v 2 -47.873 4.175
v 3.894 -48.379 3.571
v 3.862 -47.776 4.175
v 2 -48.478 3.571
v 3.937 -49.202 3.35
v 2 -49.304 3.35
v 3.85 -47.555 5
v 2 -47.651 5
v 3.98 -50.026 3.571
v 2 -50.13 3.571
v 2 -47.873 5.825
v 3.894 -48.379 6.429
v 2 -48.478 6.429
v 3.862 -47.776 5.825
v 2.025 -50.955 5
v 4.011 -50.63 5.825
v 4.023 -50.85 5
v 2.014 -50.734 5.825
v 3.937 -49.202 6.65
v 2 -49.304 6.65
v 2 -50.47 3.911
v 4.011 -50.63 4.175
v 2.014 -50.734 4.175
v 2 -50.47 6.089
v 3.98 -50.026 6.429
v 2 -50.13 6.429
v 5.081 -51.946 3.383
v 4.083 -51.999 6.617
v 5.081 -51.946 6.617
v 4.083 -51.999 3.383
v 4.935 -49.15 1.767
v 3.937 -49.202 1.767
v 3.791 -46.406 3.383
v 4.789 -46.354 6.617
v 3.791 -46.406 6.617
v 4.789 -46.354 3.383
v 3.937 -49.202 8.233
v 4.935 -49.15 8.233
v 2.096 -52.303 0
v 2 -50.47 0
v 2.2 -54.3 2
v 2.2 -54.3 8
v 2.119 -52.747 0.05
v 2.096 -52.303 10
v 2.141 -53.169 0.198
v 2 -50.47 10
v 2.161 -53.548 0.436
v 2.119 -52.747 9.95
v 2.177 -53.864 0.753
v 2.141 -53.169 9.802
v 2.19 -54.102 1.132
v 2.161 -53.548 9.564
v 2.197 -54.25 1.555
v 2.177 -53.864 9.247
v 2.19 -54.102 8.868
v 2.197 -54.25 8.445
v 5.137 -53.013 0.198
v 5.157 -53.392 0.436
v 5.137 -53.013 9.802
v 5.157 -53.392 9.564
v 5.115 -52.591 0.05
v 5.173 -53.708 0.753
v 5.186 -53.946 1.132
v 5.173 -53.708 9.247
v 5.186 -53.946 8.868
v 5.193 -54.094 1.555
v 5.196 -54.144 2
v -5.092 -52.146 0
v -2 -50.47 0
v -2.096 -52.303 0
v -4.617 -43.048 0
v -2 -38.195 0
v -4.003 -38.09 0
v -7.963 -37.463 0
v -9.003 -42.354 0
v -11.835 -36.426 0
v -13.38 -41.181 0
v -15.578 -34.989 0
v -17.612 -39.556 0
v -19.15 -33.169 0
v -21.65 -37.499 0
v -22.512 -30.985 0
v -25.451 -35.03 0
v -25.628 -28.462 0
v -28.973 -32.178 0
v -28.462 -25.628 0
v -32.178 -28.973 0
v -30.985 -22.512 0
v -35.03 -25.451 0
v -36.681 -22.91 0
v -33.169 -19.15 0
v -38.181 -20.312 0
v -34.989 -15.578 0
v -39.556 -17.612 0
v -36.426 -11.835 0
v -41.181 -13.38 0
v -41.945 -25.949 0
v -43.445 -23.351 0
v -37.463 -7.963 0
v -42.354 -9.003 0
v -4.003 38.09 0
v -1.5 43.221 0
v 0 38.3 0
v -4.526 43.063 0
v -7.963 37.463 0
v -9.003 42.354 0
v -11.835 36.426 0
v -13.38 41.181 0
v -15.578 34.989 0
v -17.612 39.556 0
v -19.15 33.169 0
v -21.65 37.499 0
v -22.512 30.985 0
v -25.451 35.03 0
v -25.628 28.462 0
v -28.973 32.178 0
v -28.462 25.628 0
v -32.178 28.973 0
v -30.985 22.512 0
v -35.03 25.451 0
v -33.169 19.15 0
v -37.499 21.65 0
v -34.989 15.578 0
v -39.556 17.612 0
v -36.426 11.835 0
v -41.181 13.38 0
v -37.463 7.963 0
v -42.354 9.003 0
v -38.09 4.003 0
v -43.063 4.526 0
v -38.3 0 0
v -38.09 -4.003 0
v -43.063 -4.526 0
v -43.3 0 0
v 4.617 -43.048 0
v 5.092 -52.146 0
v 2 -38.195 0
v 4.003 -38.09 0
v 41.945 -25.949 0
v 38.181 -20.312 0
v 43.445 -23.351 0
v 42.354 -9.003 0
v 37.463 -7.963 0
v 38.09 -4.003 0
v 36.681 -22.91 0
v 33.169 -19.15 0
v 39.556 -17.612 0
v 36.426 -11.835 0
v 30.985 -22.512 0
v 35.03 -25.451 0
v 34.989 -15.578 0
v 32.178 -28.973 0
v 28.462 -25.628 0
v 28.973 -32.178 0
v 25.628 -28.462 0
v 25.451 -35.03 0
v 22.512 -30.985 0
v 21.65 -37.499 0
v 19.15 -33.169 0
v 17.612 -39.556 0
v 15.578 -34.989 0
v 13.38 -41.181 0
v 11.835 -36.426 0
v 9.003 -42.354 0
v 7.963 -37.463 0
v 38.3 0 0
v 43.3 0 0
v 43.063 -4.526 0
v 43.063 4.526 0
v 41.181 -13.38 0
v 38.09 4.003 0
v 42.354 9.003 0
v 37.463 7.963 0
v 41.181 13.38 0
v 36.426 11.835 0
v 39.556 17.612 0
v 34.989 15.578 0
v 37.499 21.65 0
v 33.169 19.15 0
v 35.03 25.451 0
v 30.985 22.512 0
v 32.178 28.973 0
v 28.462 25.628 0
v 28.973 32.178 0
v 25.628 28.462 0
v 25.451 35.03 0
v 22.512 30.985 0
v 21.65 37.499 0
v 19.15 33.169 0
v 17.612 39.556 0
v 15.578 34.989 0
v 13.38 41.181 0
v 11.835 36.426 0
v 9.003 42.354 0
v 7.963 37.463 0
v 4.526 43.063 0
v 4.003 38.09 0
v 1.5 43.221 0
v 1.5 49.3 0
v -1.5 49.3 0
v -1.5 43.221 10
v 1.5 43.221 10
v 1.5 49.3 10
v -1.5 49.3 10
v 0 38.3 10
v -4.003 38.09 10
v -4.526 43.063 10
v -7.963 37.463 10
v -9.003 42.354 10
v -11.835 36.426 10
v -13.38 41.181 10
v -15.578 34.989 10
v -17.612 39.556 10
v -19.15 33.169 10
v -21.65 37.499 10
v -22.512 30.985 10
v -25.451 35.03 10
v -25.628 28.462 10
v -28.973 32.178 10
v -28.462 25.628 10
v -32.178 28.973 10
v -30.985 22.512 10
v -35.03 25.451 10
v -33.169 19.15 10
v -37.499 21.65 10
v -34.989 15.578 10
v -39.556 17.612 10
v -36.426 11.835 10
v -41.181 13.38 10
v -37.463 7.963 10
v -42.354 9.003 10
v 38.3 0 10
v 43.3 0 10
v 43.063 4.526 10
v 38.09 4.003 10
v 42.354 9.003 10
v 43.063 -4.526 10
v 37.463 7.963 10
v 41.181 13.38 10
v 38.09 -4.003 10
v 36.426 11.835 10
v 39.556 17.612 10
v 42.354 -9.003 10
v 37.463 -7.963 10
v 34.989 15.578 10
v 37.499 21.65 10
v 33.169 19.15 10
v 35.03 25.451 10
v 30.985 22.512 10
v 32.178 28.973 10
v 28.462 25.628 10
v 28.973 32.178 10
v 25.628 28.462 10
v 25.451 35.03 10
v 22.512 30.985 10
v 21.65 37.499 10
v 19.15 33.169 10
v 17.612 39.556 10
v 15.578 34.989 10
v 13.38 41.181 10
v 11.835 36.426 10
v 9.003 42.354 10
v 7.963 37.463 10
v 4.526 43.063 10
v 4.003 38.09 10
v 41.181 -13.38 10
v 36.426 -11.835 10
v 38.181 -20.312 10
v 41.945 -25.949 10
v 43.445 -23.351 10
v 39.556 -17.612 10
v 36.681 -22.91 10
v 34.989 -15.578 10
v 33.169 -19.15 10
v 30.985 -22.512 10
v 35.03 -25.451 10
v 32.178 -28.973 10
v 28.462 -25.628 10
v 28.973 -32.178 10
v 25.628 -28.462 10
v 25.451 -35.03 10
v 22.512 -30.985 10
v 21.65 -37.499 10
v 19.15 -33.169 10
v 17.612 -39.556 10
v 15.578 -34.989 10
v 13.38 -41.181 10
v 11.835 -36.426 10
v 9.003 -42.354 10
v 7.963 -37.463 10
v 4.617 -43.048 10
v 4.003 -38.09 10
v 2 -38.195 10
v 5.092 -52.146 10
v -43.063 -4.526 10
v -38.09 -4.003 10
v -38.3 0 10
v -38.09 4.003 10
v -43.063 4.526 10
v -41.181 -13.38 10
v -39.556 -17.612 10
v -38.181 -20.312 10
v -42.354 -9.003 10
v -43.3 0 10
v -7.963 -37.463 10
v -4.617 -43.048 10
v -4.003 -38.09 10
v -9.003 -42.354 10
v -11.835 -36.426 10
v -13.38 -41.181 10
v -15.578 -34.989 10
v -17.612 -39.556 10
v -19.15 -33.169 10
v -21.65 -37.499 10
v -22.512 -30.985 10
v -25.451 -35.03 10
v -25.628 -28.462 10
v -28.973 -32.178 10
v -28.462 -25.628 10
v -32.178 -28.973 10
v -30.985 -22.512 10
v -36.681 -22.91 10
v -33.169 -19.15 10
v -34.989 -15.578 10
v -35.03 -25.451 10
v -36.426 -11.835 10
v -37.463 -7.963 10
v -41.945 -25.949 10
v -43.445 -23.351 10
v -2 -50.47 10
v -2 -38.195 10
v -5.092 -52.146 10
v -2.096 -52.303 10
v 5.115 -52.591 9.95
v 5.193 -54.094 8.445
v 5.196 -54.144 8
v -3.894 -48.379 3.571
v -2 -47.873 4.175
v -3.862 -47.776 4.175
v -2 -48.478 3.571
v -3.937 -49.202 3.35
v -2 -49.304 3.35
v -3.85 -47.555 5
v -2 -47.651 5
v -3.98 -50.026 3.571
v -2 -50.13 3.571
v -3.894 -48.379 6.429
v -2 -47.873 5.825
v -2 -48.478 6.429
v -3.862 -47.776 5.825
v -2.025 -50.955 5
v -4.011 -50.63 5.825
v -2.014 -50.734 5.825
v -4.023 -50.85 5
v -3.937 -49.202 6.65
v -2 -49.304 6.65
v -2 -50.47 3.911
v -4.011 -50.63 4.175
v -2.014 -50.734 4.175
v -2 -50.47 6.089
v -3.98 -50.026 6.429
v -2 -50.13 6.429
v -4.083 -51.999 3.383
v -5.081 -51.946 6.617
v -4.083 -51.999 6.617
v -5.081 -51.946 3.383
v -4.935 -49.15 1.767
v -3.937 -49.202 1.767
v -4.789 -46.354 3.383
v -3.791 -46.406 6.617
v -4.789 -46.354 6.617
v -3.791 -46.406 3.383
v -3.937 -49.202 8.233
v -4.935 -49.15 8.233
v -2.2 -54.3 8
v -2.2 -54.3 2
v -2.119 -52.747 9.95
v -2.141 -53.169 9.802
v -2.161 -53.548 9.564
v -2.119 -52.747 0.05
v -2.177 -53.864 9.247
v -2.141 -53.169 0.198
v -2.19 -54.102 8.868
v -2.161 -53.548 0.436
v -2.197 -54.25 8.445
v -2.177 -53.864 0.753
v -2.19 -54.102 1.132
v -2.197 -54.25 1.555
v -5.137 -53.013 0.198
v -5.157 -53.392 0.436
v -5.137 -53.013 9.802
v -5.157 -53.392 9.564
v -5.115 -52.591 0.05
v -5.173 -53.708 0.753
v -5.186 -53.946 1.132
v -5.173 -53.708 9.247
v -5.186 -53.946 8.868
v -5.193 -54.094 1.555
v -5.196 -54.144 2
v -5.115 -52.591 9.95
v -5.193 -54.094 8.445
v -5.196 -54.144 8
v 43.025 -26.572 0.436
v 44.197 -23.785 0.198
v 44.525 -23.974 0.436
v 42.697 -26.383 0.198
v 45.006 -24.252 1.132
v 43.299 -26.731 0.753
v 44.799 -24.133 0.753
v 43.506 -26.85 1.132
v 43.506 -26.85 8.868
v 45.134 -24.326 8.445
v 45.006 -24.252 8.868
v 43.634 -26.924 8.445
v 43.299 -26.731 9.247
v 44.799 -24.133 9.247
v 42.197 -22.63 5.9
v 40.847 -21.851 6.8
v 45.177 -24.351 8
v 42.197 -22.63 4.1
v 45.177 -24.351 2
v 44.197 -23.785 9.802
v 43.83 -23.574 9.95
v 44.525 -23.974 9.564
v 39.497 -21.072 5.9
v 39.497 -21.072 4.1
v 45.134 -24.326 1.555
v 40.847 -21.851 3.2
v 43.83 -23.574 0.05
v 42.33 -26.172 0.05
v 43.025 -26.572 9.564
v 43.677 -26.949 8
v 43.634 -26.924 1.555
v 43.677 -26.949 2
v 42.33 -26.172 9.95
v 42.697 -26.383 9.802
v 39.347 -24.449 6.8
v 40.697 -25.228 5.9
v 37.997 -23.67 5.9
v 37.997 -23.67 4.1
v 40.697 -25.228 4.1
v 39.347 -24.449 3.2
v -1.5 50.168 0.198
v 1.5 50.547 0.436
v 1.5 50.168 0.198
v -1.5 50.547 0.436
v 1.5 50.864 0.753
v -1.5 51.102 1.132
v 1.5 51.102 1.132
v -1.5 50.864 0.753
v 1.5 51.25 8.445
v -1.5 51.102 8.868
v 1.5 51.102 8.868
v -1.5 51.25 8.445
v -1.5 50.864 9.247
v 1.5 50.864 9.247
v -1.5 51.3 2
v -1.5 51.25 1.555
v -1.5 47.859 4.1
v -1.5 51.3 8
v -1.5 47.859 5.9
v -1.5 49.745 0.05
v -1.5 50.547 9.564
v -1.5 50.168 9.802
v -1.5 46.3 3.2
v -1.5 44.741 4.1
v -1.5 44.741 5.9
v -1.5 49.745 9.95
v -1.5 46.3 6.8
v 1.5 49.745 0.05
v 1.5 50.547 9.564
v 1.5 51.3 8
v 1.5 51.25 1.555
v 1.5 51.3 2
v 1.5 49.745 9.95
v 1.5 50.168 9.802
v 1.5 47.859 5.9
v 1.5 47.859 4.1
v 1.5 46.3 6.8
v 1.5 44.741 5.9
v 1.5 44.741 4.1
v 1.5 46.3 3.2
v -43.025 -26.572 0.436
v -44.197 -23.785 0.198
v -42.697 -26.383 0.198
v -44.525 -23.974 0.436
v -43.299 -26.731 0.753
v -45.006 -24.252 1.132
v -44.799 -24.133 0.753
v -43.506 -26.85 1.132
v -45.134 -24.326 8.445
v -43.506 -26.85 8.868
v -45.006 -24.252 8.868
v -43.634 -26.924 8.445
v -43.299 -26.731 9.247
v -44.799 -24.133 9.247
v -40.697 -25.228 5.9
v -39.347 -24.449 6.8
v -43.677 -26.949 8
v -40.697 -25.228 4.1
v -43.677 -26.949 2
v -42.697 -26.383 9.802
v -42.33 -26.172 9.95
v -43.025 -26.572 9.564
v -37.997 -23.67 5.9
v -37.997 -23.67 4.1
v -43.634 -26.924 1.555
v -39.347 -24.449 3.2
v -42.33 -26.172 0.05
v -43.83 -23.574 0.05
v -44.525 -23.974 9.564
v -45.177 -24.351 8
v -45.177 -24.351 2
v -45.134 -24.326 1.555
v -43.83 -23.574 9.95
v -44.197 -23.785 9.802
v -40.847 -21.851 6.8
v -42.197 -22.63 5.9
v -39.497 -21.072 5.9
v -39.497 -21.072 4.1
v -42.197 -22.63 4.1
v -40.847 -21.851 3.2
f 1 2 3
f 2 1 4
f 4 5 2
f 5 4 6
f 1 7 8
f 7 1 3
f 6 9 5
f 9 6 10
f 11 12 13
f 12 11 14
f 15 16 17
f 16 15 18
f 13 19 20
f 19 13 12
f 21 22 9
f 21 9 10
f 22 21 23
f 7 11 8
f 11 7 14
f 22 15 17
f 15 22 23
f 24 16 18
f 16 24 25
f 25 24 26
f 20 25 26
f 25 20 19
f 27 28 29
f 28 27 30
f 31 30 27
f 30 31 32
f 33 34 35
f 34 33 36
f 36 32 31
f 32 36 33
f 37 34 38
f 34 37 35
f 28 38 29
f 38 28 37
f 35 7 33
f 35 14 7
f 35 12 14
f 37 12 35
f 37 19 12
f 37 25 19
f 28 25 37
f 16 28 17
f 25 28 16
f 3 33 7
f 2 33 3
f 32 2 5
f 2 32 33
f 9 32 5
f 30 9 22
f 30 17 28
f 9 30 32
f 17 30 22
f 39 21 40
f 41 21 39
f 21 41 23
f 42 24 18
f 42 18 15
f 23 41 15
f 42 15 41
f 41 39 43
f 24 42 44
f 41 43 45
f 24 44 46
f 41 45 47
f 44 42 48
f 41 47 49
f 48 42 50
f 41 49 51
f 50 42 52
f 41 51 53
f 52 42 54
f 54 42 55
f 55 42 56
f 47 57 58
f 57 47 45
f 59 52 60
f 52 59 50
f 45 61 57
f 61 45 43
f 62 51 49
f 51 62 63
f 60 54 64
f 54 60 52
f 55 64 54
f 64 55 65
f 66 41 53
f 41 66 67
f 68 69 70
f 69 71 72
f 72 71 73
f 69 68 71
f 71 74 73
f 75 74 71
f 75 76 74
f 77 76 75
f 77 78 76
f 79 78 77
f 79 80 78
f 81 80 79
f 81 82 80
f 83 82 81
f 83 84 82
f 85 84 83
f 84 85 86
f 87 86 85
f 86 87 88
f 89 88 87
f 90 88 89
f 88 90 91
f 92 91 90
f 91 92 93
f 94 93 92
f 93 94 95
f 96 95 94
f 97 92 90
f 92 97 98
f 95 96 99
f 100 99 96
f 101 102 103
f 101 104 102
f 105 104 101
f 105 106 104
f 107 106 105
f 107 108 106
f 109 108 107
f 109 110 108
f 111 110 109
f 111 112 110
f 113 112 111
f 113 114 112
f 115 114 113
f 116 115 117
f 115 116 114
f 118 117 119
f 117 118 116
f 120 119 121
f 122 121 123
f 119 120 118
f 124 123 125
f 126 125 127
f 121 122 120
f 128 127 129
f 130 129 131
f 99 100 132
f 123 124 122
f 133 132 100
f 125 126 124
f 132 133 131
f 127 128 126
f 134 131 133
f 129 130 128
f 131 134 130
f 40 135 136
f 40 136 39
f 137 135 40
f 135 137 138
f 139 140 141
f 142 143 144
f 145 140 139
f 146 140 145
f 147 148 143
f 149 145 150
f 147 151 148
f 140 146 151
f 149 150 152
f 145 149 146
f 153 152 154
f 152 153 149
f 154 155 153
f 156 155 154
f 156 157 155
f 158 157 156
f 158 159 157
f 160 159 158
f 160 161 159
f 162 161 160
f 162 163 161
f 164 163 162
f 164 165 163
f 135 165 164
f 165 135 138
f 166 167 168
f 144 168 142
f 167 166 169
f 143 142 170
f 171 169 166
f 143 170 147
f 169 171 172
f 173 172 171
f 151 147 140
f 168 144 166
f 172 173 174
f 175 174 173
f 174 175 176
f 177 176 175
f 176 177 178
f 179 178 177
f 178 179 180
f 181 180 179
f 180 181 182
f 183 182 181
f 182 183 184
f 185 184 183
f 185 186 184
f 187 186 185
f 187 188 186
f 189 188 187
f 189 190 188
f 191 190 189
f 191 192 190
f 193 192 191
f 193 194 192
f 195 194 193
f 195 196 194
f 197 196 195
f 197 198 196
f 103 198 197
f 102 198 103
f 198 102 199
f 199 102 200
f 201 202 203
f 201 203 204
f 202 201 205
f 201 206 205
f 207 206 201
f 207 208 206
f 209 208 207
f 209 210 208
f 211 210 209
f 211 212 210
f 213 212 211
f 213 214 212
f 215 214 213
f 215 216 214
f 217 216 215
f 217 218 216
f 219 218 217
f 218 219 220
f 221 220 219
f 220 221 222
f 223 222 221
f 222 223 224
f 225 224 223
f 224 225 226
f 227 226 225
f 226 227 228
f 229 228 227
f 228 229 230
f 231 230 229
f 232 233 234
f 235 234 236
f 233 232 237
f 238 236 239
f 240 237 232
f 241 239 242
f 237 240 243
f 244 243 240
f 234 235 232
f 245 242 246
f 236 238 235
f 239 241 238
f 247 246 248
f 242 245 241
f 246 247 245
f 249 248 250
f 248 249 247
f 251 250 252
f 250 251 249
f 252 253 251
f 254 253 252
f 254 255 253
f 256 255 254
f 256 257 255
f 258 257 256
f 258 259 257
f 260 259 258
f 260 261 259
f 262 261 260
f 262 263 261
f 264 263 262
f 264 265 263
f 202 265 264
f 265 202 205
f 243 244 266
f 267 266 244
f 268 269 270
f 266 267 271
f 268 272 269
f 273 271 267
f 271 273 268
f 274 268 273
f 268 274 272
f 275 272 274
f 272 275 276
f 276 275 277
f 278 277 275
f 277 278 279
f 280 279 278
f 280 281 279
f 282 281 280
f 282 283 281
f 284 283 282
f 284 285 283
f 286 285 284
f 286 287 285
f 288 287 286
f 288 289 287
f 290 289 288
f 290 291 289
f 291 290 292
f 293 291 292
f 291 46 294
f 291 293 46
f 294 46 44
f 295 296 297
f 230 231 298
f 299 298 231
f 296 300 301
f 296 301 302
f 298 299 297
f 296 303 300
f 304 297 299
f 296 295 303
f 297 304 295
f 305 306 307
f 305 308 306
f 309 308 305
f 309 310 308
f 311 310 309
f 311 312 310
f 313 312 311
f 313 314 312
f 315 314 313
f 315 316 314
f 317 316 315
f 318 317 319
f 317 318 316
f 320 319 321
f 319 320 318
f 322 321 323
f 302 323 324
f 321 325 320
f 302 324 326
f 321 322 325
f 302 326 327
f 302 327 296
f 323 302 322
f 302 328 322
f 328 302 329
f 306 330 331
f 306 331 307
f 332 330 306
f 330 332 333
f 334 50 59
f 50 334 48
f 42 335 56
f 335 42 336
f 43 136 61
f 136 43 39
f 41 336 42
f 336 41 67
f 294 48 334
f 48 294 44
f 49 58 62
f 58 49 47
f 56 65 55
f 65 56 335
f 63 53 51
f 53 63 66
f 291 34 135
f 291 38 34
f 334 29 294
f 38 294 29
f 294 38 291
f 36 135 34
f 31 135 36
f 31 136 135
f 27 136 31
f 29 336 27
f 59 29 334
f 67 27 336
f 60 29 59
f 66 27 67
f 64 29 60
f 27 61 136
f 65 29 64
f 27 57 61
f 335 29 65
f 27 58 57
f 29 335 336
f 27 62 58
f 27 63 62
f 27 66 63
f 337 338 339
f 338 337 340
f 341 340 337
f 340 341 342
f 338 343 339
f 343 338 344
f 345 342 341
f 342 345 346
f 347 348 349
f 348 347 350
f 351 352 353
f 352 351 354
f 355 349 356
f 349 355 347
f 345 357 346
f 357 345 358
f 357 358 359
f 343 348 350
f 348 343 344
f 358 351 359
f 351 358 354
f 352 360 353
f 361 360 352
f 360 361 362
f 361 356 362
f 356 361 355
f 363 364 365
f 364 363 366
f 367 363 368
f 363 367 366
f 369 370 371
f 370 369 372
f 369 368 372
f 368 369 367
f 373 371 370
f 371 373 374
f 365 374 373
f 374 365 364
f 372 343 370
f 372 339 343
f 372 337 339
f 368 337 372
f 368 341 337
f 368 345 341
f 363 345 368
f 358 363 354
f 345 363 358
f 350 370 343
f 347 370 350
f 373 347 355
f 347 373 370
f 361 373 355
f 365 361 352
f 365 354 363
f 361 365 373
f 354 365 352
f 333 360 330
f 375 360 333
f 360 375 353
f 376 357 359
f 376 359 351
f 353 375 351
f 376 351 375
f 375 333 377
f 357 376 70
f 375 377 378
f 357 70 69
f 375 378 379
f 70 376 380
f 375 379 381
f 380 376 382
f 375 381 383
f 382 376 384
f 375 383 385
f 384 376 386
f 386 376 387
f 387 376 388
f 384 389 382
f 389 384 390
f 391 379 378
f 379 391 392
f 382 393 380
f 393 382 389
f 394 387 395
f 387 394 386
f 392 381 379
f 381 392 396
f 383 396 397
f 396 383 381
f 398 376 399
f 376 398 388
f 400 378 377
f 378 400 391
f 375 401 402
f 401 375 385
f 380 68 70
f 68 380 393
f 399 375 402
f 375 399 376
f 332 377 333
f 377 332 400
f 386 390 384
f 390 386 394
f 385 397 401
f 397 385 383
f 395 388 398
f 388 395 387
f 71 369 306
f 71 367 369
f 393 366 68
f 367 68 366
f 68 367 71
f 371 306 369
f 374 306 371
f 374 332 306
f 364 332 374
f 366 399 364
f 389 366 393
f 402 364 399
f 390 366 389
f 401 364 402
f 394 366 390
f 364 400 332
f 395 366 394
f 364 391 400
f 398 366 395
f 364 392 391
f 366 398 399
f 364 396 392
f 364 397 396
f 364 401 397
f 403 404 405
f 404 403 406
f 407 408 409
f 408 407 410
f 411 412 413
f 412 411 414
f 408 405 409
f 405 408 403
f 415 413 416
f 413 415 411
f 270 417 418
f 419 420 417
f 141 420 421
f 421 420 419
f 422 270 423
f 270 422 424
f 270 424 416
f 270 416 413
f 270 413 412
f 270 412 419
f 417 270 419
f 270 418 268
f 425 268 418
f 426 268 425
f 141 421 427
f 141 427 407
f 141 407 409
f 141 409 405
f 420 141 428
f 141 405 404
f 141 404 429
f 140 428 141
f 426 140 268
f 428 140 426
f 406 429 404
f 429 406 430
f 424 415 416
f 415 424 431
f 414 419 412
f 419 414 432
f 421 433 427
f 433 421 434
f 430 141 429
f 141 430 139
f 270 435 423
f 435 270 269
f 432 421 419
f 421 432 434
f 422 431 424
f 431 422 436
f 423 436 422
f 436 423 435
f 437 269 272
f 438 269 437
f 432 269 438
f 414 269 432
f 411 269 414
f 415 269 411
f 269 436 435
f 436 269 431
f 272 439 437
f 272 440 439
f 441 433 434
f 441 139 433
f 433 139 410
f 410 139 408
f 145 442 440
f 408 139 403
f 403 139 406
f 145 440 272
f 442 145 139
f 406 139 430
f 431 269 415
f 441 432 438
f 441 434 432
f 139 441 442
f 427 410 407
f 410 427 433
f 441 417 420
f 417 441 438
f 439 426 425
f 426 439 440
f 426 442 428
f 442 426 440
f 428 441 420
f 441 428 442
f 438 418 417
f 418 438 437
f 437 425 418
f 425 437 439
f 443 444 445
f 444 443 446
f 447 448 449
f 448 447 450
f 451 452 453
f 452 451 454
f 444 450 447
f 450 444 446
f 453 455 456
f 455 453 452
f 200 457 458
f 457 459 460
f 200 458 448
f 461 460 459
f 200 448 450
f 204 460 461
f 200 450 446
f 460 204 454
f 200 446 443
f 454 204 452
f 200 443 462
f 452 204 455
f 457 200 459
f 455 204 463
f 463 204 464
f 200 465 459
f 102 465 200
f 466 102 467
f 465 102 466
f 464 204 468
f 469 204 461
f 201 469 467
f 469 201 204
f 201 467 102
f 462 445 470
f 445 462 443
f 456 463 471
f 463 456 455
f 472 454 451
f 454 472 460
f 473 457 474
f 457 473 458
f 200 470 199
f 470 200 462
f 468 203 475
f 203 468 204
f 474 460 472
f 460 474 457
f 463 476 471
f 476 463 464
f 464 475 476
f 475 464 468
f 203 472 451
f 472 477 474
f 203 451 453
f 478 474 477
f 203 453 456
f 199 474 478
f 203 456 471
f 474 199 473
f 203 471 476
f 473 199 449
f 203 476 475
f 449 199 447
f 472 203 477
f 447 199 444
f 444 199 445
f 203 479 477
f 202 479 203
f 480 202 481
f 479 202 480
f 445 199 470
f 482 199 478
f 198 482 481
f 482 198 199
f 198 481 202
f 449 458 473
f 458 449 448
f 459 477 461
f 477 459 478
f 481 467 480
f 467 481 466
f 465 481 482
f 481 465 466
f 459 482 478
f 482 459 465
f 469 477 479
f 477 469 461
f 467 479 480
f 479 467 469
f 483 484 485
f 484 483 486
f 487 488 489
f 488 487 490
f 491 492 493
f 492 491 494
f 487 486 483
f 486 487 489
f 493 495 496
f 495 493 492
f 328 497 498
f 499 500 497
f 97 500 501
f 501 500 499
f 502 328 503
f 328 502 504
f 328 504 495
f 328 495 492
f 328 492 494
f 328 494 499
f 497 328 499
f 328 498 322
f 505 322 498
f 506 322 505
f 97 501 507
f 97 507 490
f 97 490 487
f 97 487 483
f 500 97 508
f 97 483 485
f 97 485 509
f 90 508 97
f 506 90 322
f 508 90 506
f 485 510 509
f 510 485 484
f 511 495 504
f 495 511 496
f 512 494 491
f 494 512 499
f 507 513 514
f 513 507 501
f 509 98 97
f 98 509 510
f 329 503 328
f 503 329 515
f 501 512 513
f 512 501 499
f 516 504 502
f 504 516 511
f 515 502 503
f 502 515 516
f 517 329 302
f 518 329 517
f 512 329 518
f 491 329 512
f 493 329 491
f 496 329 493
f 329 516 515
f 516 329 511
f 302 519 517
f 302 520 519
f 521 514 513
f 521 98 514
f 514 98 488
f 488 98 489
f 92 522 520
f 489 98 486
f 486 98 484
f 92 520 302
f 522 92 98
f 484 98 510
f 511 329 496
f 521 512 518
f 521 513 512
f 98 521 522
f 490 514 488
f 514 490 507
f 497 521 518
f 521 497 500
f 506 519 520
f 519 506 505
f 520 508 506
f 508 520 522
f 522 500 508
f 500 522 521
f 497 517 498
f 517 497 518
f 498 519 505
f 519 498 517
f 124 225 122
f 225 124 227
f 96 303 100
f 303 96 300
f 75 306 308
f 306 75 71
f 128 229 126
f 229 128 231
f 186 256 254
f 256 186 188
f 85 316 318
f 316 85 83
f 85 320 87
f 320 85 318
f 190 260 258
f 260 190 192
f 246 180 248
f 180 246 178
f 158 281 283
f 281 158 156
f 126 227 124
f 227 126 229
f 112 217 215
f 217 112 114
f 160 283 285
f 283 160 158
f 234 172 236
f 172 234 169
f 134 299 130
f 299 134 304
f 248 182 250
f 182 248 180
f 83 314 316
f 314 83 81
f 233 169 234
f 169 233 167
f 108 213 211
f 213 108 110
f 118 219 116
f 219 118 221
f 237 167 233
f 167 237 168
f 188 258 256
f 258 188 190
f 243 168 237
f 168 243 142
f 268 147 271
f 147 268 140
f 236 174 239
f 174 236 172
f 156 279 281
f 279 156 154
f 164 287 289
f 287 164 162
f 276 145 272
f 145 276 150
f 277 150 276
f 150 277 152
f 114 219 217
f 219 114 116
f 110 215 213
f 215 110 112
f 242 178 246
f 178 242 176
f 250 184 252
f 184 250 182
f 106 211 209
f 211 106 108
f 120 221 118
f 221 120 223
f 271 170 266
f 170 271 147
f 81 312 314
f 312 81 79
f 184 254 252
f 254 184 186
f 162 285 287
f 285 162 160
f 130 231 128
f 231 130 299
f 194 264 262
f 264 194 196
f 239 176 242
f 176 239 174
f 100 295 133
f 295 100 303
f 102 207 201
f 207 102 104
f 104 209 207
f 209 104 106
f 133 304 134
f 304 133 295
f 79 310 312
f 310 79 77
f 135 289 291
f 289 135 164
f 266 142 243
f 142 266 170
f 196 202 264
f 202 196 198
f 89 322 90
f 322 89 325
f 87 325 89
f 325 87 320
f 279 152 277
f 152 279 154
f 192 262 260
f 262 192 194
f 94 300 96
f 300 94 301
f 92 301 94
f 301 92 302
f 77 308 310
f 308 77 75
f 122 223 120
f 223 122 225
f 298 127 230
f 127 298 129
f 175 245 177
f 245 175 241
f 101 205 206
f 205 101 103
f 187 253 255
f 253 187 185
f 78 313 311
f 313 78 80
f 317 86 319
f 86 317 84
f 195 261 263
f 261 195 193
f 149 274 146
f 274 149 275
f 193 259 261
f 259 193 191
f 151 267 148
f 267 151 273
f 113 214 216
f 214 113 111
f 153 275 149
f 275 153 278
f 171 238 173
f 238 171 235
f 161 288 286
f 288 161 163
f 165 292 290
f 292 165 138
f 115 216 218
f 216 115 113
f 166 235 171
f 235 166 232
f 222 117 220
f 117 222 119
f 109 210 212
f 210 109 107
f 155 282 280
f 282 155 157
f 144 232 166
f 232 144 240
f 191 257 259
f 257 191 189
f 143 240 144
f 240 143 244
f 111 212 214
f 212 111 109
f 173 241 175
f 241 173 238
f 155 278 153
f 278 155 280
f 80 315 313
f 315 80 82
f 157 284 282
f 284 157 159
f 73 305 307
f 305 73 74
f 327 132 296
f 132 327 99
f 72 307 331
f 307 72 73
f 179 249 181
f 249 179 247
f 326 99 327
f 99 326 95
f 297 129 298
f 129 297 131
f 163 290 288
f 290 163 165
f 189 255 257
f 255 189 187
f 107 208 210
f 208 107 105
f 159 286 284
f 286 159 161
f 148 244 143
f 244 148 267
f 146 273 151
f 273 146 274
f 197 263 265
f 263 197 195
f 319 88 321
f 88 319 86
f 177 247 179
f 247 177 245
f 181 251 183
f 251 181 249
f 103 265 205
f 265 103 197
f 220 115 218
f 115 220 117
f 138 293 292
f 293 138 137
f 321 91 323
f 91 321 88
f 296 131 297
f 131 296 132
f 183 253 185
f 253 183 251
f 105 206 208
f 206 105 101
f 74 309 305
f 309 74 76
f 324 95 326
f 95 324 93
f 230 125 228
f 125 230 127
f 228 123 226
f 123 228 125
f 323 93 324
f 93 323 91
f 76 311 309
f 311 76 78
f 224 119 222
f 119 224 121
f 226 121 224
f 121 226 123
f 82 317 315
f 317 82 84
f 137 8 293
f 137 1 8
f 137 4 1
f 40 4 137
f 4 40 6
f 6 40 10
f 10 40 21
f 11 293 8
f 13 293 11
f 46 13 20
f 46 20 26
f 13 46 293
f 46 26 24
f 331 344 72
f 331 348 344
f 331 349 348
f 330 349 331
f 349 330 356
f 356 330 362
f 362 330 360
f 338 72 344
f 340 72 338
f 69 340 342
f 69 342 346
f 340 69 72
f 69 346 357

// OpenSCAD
// file: lib/sweep.scad
// sweep.scad
//
// This code is copied from
// https://github.com/openscad/list-comprehension-demos
// and
// https://github.com/openscad/scad-utils
// to make hangprinter repo self-contained
// It was included in order to make the worm drive parametric
// In future OpenSCAD (or other script CAD programs)
// worm drives should be will be more easily constructed without
// this user space defined sweep operation.
// See OpenSCAD discussion at:
// https://github.com/openscad/openscad/issues/114

// Look into files
// lists.scad
// X transformations.scad
// linalg.scad
// se3.scad
// so3.scad


// Include modules and fcts:

/// linalg.scad
function vec3(p) = len(p) < 3 ? concat(p,0) : p;
function vec4(p) = let (v3=vec3(p)) len(v3) < 4 ? concat(v3,1) : v3;
function take3(v) = [v[0],v[1],v[2]];
function tail3(v) = [v[3],v[4],v[5]];
function construct_Rt(R,t) = [concat(R[0],t[0]),concat(R[1],t[1]),concat(R[2],t[2]),[0,0,0,1]];

/// so3.scad

function se3_exp_2(t,w) = se3_exp_2_0(t,w,w*w);
function se3_exp_2_0(t,w,theta_sq) =
se3_exp_23(
	so3_exp_2(theta_sq),
	C = (1.0 - theta_sq/20) / 6,
	t=t,w=w);

// Taylor series expansions close to 0
function so3_exp_1(theta_sq) = [
	1 - 1/6*theta_sq,
	0.5
];

function rodrigues_so3_exp(w, A, B) = [
  [1.0 - B*(w[1]*w[1] + w[2]*w[2]), B*(w[0]*w[1]) - A*w[2],          B*(w[0]*w[2]) + A*w[1]],
  [B*(w[0]*w[1]) + A*w[2],          1.0 - B*(w[0]*w[0] + w[2]*w[2]), B*(w[1]*w[2]) - A*w[0]],
  [B*(w[0]*w[2]) - A*w[1],          B*(w[1]*w[2]) + A*w[0],          1.0 - B*(w[0]*w[0] + w[1]*w[1])]
];

function so3_exp_3_0(theta_deg, inv_theta) = [
	sin(theta_deg) * inv_theta,
	(1 - cos(theta_deg)) * (inv_theta * inv_theta)
];

/// se3.scad
function combine_se3_exp(w, ABt) = construct_Rt(rodrigues_so3_exp(w, ABt[0], ABt[1]), ABt[2]);
function se3_exp_1(t,w) = concat(
	so3_exp_1(w*w),
	[t + 0.5 * cross(w,t)]
);

function se3_exp_3(t,w) = se3_exp_3_0(t,w,sqrt(w*w)*180/PI,1/sqrt(w*w));

function se3_exp_23(AB,C,t,w) =
[AB[0], AB[1], t + AB[1] * cross(w,t) + C * cross(w,cross(w,t)) ];

function se3_exp_3_0(t,w,theta_deg,inv_theta) =
se3_exp_23(
	so3_exp_3_0(theta_deg = theta_deg, inv_theta = inv_theta),
	C = (1 - sin(theta_deg) * inv_theta) * (inv_theta * inv_theta),
t=t,w=w);

function se3_exp(mu) = se3_exp_0(t=take3(mu),w=tail3(mu)/180*PI);

function se3_exp_0(t,w) =
combine_se3_exp(w,
// Evaluate by Taylor expansion when near 0
	w*w < 1e-8
	? se3_exp_1(t,w)
	: w*w < 1e-6
	  ? se3_exp_2(t,w)
	  : se3_exp_3(t,w)
);


/// lists.scad
/*!
  Flattens a list one level:

  flatten([[0,1],[2,3]]) => [0,1,2,3]
*/
function flatten(list) = [ for (i = list, v = i) v ];
/*!
  Extracts a subarray from index begin (inclusive) to end (exclusive)

  subarray([1,2,3,4], 1, 2) => [2,3]
*/
function subarray(list,begin=0,end=-1) = [
    let(end = end < 0 ? len(list) : end)
      for (i = [begin : 1 : end-1])
        list[i]
];

/// transformations.scad
//********* Create modifying matrices ***************//
/*!
  Creates a rotation matrix

  xyz = euler angles = rz * ry * rx
  axis = rotation_axis * rotation_angle
*/
function rotation(xyz=undef, axis=undef) =
	xyz != undef && axis != undef ? undef :
	xyz == undef  ? se3_exp([0,0,0,axis[0],axis[1],axis[2]]) :
	len(xyz) == undef ? rotation(axis=[0,0,xyz]) :
	(len(xyz) >= 3 ? rotation(axis=[0,0,xyz[2]]) : identity4()) *
	(len(xyz) >= 2 ? rotation(axis=[0,xyz[1],0]) : identity4()) *
(len(xyz) >= 1 ? rotation(axis=[xyz[0],0,0]) : identity4());

/*!
  Creates a scaling matrix
*/
function scaling(v) = [
	[v[0],0,0,0],
	[0,v[1],0,0],
	[0,0,v[2],0],
	[0,0,0,1],
];

/*!
  Creates a translation matrix
*/
function translation(v) = [
	[1,0,0,v[0]],
	[0,1,0,v[1]],
	[0,0,1,v[2]],
	[0,0,0,1],
];


function project(x) = subarray(x,end=len(x)-1) / x[len(x)-1];

function transform(m, list) = [for (p=list) project(m * vec4(p))];

function to_3d(list) = [ for(v = list) vec3(v) ];

module sweep(shape, path_transforms, closed=false) {

    pathlen = len(path_transforms);
    segments = pathlen + (closed ? 0 : -1);
    shape3d = to_3d(shape);

    function sweep_points() =
      flatten([for (i=[0:pathlen-1])
        transform(path_transforms[i], shape3d)]);

    function loop_faces() = [let (facets=len(shape3d))
        for(s=[0:segments-1], i=[0:facets-1])
          [(s%pathlen) * facets + i,
           (s%pathlen) * facets + (i + 1) % facets,
           ((s + 1) % pathlen) * facets + (i + 1) % facets,
           ((s + 1) % pathlen) * facets + i]];

    bottom_cap = closed ? [] : [[for (i=[len(shape3d)-1:-1:0]) i]];
    top_cap = closed ? [] : [
      [for (i=[0:len(shape3d)-1])
        i+len(shape3d)*(pathlen-1)]];
    polyhedron(points = sweep_points(),
               faces  = concat(loop_faces(),
                               bottom_cap,
                               top_cap),
               convexity=5);
}
// file: ram_1000_3dpotter.scad
include <lib/parameters.scad>
use <lib/util.scad>

ram_1000_3dpotter();
module ram_1000_3dpotter(){
  lift_tube = 60;
  tube_height = 325;
  tube_inner_d = Ram_1000_3dpotter_tube_inner_d;
  tube_outer_d = Ram_1000_3dpotter_tube_outer_d;
  translate([0,0,lift_tube])
    color([0.9,0.9,0.9], 0.4)
      difference(){
        cylinder(d = tube_outer_d, h=tube_height, $fn=10*4);
        translate([0,0,-1])
          cylinder(d = tube_inner_d, h= tube_height+2, $fn=10*4);
      }

  color([0.15,0.15,0.15])
    difference(){
      translate([0,0,lift_tube-36])
        cylinder(d=70, h=36);
      end_r = 35.7/2;
      circle_r = 47;
      translate([0,0,lift_tube-36])
        rotate_extrude()
          translate([circle_r+end_r,0])
            circle(r=circle_r);
    }

  color([0.93,0.1,0.1])
    cylinder(d1 = 6, d2 = 19, h = 24);

  shim_height = 17;
  color([0.15,0.15,0.15])
    translate([0,0,tube_height + lift_tube])
      cylinder(d = tube_outer_d + 3, h = shim_height);

  color([0.5,0.5,0.5])
    translate([-80/2, -80/2, lift_tube + tube_height + shim_height])
      cube([80, 97, Nema23_cube_width]);
  translate([-Nema23_cube_height-80/2, 97-80/2-Nema23_cube_width/2, lift_tube + tube_height + shim_height + Nema23_cube_width/2])
    rotate([0,90,0])
      Nema23();

  topshim_height = 10;
  color([0.6,0.6,0.6])
    translate([0,0,lift_tube + tube_height + shim_height + Nema23_cube_width])
      cylinder(d=62, h=topshim_height);
  w = Ram_1000_3dpotter_top_square_width;
  color([0.6,0.6,0.6])
    rotate([0,0,45])
      translate([-w/2, -w/2, lift_tube + tube_height + shim_height + Nema23_cube_width])
        cube([w, w, 300]);

}
// file: lib/parameters.scad
// Parameters shared between modules
Base_th = 2;
Beam_width = 15;
Wiggle = 0.25;
Fat_beam_width = Beam_width + Wiggle;
Beam_length = 400;
Wall_th = 2.5;
Min_beam_width = 12.5;
Max_beam_width = 17.5;
Zip_th = 2;
Zip_h = Zip_th + Max_beam_width - Min_beam_width;
Zip_w = 5.0;
Nema17_cube_width          = 42.43;
Nema17_screw_hole_width    = 43.74; // Opposite corner screws
Nema17_ring_diameter       = 22;
Nema17_cube_height         = 39.36;
Nema17_shaft_height        = 63.65;
Nema17_ring_height         = 2;
Nema17_shaft_radius        = 5/2;

Nema23_cube_width          = 56.4;
Nema23_cube_height         = 54.5;
Nema23_shaft_height        = 100;
Nema23_screw_hole_width    = 66.31; // Opposite corner screws
b608_outer_dia = 22.2;
b608_width = 7.05;
b608_bore_r = 4;
b608_vgroove_big_r = b608_outer_dia/2 + 2.5;
b608_vgroove_small_r = b608_outer_dia/2 + 0.5;
b608_ugroove_big_r = b608_vgroove_big_r;
b608_ugroove_small_r = b608_vgroove_small_r;
Gap_between_sandwich_and_plate = 1.5 + Base_th; // 1.5 mm for wiggle
Motor_bracket_flerp_r = 6;
Motor_bracket_flerp = 14;
Motor_bracket_cw = Nema17_cube_width + 6;
Motor_bracket_att_ang = 50;
Mounting_screw_d = 3.5;
Mounting_screw_head_d = 14;
Spool_outer_wall_th = 4;

// Corner clamp parameters
Cc_l1 = (Fat_beam_width+2*Wall_th)*2*sqrt(3);
Cc_rad_b = 4;
Cc_action_point_from_mid = Cc_l1/sqrt(3)-2*Cc_rad_b-7;
Cc_plastic_length = sqrt(Cc_action_point_from_mid*Cc_action_point_from_mid
                       - (Cc_action_point_from_mid/2)*(Cc_action_point_from_mid/2));
Eyelet_extra_dist = 0.75;
Eyelet_diameter = 4.30;
Move_d_bearings_inwards = -2;

// The distance between the two action points on the mover
Sidelength = Beam_length + 2*Cc_plastic_length;

/////// Gear parameters ////////////
Circular_pitch = 262;
Motor_teeth = 10;
Gear_height = 21.4-3;
Motor_pitch                      = (Motor_teeth*Circular_pitch/360);
Motor_pitch_diametrial           = Motor_teeth/(2*Motor_pitch);
Motor_outer_radius               = Motor_pitch + 1/Motor_pitch_diametrial;
Spool_teeth = 100;
Spool_r = 75;
Spool_height = 8;
Spool_pitch                      = (Spool_teeth*Circular_pitch/360);
Spool_pitch_diametrial           = Spool_teeth/(2*Spool_pitch);
Spool_outer_radius               = Spool_pitch + 1/Spool_pitch_diametrial;
Sep_disc_radius = (161.83+1)/2; // Made to match 255 teeth gt2 pulley + 1
Motor_bracket_depth = Gear_height+1+7+Nema17_ring_height+1+Gap_between_sandwich_and_plate;
Spool_core_flerp0 = 16+3;

/////// Lineroller parameters ////////////
b623_width  = 4;
b623_bore_r = 3/2;
b623_big_ugroove_big_r = (12+3)/2;
b623_big_ugroove_small_r = (10+3)/2;
b623_outer_dia = 10;
b623_ugroove_room_to_grow_r = 1.1;
b608_ugroove_room_to_grow_r = 1.1;
b623_flange_dia = 11.5;
b623_flange_room_to_grow_r = 0.5;

Depth_of_roller_base = 18;
Roller_flerp = 6;
Roller_l = 42;
Roller_fl = (Roller_l - Depth_of_roller_base)/2;

Line_roller_wall_th = 5;

Line_roller_ABC_winch_h =  Gap_between_sandwich_and_plate
                           + Sep_disc_radius
                           - Spool_r
                           + Depth_of_roller_base/2
                           + b608_vgroove_small_r;

Ptfe_r = 2.1;
Roller_base_r = 8;
Screw_h = 2;
Screw_head_h = 2;
M3_screw_head_d = 5.8;
Spool_center_bearing_wall_th = 5;
Corner_clamp_bearings_center_to_center = max(15, (b623_big_ugroove_big_r + b623_ugroove_room_to_grow_r)*2 + 5);

//// Lineroller anchor parameters /////

Front_bearing_x = -5 - 5;
Move_tower = -12.2;
Lower_bearing_z = 13;
Higher_bearing_z = Lower_bearing_z + Corner_clamp_bearings_center_to_center;

//// Cable Clamp parameters /////
Bit_width = 12;
Cable_r=2.5;

// Belt drive parameters
GT2_belt_width = 6.5;
GT2_gear_height = GT2_belt_width + 2;
GT2_motor_gear_height = 16;
GT2_motor_gear_outer_dia = 16;
GT2_spool_gear_outer_dia = 161.82; // Echoed from GT2_spool_gear.scad
GT2_spool_gear_teeth = 255;
GT2_motor_gear_teeth = 20;
Torx_depth = GT2_gear_height/2;
Belt_roller_h = 56;
Belt_thickness = 1.4;

Belt_roller_space_between_walls = 2*b623_width + 0.8;
Belt_roller_wall_th = (Depth_of_roller_base - Belt_roller_space_between_walls)/2+2;
Belt_roller_top_adj_screw_x = Depth_of_roller_base/2-3.7;
Belt_roller_top_adj_screw_y = Belt_roller_space_between_walls/2+2;
Belt_roller_containing_cube_ywidth = Belt_roller_space_between_walls+8.5;
Belt_roller_containing_cube_xwidth = 14;
Belt_roller_insert_h = 18;

Sandwich_ABC_width = 2*(1+Spool_height) + GT2_gear_height;
Sandwich_D_width = 4*(1+Spool_height) + GT2_gear_height;
Spool_core_halve_width = 14.3;
Spool_core_impression_in_spool_cover = 0;
Spool_cover_bottom_th = 1.5;
Spool_cover_shoulder = 2;
Spool_core_cover_adj = Spool_cover_shoulder+Spool_cover_bottom_th-Spool_core_impression_in_spool_cover;
Spool_core_tot_length = 136.458;
Spool_cover_outer_r = Sep_disc_radius + 2;
Gap_between_sep_disc_and_spool_cover = 0.55;

Smooth_rod_length_ABC = Sandwich_ABC_width + 2*(Spool_core_halve_width-Spool_core_impression_in_spool_cover + Spool_cover_bottom_th + Spool_cover_shoulder);
Smooth_rod_length_D = Sandwich_D_width + 2*(Spool_core_halve_width-Spool_core_impression_in_spool_cover + Spool_cover_bottom_th + Spool_cover_shoulder);
echo("Smooth_rod_length_ABC", Smooth_rod_length_ABC);
echo("Smooth_rod_length_D", Smooth_rod_length_D);

Spool_cover_tot_height = Spool_cover_bottom_th+Spool_cover_shoulder+1+Spool_height;
Spool_cover_D_left_tot_height = Spool_cover_shoulder+Spool_cover_bottom_th+1+Spool_height+1+Spool_height;

spd = Spool_height+GT2_gear_height;
// Horizontal_deflector_cube_y_size must be exact this number
// because we want to deflect AB-lines
// 60 degrees on the ceiling unit, and we want to put two
// deflectors in a row and get a distance between bearings
// that maintain the distance d when deflecting 60 degrees
Horizontal_deflector_cube_y_size = (2/sqrt(3))*spd;

Belt_roller_bearing_xpos = Sep_disc_radius + b623_outer_dia/2+Belt_thickness;


// Top plate parameters needed for layout slicer
Yshift_top_plate = -297.8;

Pen_holder_w = 55;
Pen_holder_rail_w = 36;
Pen_holder_bottom_th = 7;

u_width = 7;
Stick_extra = 5;
Stick_length = b623_big_ugroove_big_r*2 + 7*2 + 1*2 + Stick_extra;
Stick_d = 12.5;

Ram_1000_3dpotter_tube_inner_d = 70;
Ram_1000_3dpotter_tube_outer_d = Ram_1000_3dpotter_tube_inner_d + 2*3.3;
Ram_1000_3dpotter_top_square_width = 31.7;
// main file
include <lib/parameters.scad>
use <lib/util.scad>
use <ram_1000_3dpotter.scad>

ram_1000_3dpotter_holder();
module ram_1000_3dpotter_holder(){
  difference(){
    union(){
      cylinder(d = Ram_1000_3dpotter_tube_outer_d + 2*5, h=10, $fn=15*4);
      for(k=[0,1]) mirror([k,0,0])
        translate([4/2+0.2,-Ram_1000_3dpotter_tube_outer_d/2-16,10])
          rotate([-atan(4/Ram_1000_3dpotter_tube_outer_d),90,0])
            difference(){
              rounded_cube2([10,18,3],2, $fn=7*4);
              translate([10/2,5,-1]){
                M3_screw();
                translate([0,0,3])
                  nut(h=3);
              }
            }

      for(ang=[0,120,240]) rotate([0,0,ang+60])
        translate([0,-Ram_1000_3dpotter_tube_outer_d/2-13,10])
          rotate([0,90,0])
            translate([0,0,-3/2])
              difference(){
                rounded_cube2([10,13,3],2, $fn=7*4);
                translate([10/2,5,-1])
                  cylinder(d=3.6, h=20);
              }
    }
    translate([0,0,-1])
      cylinder(d = Ram_1000_3dpotter_tube_outer_d, h=12, $fn=15*4);
    translate([-4/2, -Ram_1000_3dpotter_tube_outer_d,-1])
      cube([4, Ram_1000_3dpotter_tube_outer_d, 12]);
  }
}
